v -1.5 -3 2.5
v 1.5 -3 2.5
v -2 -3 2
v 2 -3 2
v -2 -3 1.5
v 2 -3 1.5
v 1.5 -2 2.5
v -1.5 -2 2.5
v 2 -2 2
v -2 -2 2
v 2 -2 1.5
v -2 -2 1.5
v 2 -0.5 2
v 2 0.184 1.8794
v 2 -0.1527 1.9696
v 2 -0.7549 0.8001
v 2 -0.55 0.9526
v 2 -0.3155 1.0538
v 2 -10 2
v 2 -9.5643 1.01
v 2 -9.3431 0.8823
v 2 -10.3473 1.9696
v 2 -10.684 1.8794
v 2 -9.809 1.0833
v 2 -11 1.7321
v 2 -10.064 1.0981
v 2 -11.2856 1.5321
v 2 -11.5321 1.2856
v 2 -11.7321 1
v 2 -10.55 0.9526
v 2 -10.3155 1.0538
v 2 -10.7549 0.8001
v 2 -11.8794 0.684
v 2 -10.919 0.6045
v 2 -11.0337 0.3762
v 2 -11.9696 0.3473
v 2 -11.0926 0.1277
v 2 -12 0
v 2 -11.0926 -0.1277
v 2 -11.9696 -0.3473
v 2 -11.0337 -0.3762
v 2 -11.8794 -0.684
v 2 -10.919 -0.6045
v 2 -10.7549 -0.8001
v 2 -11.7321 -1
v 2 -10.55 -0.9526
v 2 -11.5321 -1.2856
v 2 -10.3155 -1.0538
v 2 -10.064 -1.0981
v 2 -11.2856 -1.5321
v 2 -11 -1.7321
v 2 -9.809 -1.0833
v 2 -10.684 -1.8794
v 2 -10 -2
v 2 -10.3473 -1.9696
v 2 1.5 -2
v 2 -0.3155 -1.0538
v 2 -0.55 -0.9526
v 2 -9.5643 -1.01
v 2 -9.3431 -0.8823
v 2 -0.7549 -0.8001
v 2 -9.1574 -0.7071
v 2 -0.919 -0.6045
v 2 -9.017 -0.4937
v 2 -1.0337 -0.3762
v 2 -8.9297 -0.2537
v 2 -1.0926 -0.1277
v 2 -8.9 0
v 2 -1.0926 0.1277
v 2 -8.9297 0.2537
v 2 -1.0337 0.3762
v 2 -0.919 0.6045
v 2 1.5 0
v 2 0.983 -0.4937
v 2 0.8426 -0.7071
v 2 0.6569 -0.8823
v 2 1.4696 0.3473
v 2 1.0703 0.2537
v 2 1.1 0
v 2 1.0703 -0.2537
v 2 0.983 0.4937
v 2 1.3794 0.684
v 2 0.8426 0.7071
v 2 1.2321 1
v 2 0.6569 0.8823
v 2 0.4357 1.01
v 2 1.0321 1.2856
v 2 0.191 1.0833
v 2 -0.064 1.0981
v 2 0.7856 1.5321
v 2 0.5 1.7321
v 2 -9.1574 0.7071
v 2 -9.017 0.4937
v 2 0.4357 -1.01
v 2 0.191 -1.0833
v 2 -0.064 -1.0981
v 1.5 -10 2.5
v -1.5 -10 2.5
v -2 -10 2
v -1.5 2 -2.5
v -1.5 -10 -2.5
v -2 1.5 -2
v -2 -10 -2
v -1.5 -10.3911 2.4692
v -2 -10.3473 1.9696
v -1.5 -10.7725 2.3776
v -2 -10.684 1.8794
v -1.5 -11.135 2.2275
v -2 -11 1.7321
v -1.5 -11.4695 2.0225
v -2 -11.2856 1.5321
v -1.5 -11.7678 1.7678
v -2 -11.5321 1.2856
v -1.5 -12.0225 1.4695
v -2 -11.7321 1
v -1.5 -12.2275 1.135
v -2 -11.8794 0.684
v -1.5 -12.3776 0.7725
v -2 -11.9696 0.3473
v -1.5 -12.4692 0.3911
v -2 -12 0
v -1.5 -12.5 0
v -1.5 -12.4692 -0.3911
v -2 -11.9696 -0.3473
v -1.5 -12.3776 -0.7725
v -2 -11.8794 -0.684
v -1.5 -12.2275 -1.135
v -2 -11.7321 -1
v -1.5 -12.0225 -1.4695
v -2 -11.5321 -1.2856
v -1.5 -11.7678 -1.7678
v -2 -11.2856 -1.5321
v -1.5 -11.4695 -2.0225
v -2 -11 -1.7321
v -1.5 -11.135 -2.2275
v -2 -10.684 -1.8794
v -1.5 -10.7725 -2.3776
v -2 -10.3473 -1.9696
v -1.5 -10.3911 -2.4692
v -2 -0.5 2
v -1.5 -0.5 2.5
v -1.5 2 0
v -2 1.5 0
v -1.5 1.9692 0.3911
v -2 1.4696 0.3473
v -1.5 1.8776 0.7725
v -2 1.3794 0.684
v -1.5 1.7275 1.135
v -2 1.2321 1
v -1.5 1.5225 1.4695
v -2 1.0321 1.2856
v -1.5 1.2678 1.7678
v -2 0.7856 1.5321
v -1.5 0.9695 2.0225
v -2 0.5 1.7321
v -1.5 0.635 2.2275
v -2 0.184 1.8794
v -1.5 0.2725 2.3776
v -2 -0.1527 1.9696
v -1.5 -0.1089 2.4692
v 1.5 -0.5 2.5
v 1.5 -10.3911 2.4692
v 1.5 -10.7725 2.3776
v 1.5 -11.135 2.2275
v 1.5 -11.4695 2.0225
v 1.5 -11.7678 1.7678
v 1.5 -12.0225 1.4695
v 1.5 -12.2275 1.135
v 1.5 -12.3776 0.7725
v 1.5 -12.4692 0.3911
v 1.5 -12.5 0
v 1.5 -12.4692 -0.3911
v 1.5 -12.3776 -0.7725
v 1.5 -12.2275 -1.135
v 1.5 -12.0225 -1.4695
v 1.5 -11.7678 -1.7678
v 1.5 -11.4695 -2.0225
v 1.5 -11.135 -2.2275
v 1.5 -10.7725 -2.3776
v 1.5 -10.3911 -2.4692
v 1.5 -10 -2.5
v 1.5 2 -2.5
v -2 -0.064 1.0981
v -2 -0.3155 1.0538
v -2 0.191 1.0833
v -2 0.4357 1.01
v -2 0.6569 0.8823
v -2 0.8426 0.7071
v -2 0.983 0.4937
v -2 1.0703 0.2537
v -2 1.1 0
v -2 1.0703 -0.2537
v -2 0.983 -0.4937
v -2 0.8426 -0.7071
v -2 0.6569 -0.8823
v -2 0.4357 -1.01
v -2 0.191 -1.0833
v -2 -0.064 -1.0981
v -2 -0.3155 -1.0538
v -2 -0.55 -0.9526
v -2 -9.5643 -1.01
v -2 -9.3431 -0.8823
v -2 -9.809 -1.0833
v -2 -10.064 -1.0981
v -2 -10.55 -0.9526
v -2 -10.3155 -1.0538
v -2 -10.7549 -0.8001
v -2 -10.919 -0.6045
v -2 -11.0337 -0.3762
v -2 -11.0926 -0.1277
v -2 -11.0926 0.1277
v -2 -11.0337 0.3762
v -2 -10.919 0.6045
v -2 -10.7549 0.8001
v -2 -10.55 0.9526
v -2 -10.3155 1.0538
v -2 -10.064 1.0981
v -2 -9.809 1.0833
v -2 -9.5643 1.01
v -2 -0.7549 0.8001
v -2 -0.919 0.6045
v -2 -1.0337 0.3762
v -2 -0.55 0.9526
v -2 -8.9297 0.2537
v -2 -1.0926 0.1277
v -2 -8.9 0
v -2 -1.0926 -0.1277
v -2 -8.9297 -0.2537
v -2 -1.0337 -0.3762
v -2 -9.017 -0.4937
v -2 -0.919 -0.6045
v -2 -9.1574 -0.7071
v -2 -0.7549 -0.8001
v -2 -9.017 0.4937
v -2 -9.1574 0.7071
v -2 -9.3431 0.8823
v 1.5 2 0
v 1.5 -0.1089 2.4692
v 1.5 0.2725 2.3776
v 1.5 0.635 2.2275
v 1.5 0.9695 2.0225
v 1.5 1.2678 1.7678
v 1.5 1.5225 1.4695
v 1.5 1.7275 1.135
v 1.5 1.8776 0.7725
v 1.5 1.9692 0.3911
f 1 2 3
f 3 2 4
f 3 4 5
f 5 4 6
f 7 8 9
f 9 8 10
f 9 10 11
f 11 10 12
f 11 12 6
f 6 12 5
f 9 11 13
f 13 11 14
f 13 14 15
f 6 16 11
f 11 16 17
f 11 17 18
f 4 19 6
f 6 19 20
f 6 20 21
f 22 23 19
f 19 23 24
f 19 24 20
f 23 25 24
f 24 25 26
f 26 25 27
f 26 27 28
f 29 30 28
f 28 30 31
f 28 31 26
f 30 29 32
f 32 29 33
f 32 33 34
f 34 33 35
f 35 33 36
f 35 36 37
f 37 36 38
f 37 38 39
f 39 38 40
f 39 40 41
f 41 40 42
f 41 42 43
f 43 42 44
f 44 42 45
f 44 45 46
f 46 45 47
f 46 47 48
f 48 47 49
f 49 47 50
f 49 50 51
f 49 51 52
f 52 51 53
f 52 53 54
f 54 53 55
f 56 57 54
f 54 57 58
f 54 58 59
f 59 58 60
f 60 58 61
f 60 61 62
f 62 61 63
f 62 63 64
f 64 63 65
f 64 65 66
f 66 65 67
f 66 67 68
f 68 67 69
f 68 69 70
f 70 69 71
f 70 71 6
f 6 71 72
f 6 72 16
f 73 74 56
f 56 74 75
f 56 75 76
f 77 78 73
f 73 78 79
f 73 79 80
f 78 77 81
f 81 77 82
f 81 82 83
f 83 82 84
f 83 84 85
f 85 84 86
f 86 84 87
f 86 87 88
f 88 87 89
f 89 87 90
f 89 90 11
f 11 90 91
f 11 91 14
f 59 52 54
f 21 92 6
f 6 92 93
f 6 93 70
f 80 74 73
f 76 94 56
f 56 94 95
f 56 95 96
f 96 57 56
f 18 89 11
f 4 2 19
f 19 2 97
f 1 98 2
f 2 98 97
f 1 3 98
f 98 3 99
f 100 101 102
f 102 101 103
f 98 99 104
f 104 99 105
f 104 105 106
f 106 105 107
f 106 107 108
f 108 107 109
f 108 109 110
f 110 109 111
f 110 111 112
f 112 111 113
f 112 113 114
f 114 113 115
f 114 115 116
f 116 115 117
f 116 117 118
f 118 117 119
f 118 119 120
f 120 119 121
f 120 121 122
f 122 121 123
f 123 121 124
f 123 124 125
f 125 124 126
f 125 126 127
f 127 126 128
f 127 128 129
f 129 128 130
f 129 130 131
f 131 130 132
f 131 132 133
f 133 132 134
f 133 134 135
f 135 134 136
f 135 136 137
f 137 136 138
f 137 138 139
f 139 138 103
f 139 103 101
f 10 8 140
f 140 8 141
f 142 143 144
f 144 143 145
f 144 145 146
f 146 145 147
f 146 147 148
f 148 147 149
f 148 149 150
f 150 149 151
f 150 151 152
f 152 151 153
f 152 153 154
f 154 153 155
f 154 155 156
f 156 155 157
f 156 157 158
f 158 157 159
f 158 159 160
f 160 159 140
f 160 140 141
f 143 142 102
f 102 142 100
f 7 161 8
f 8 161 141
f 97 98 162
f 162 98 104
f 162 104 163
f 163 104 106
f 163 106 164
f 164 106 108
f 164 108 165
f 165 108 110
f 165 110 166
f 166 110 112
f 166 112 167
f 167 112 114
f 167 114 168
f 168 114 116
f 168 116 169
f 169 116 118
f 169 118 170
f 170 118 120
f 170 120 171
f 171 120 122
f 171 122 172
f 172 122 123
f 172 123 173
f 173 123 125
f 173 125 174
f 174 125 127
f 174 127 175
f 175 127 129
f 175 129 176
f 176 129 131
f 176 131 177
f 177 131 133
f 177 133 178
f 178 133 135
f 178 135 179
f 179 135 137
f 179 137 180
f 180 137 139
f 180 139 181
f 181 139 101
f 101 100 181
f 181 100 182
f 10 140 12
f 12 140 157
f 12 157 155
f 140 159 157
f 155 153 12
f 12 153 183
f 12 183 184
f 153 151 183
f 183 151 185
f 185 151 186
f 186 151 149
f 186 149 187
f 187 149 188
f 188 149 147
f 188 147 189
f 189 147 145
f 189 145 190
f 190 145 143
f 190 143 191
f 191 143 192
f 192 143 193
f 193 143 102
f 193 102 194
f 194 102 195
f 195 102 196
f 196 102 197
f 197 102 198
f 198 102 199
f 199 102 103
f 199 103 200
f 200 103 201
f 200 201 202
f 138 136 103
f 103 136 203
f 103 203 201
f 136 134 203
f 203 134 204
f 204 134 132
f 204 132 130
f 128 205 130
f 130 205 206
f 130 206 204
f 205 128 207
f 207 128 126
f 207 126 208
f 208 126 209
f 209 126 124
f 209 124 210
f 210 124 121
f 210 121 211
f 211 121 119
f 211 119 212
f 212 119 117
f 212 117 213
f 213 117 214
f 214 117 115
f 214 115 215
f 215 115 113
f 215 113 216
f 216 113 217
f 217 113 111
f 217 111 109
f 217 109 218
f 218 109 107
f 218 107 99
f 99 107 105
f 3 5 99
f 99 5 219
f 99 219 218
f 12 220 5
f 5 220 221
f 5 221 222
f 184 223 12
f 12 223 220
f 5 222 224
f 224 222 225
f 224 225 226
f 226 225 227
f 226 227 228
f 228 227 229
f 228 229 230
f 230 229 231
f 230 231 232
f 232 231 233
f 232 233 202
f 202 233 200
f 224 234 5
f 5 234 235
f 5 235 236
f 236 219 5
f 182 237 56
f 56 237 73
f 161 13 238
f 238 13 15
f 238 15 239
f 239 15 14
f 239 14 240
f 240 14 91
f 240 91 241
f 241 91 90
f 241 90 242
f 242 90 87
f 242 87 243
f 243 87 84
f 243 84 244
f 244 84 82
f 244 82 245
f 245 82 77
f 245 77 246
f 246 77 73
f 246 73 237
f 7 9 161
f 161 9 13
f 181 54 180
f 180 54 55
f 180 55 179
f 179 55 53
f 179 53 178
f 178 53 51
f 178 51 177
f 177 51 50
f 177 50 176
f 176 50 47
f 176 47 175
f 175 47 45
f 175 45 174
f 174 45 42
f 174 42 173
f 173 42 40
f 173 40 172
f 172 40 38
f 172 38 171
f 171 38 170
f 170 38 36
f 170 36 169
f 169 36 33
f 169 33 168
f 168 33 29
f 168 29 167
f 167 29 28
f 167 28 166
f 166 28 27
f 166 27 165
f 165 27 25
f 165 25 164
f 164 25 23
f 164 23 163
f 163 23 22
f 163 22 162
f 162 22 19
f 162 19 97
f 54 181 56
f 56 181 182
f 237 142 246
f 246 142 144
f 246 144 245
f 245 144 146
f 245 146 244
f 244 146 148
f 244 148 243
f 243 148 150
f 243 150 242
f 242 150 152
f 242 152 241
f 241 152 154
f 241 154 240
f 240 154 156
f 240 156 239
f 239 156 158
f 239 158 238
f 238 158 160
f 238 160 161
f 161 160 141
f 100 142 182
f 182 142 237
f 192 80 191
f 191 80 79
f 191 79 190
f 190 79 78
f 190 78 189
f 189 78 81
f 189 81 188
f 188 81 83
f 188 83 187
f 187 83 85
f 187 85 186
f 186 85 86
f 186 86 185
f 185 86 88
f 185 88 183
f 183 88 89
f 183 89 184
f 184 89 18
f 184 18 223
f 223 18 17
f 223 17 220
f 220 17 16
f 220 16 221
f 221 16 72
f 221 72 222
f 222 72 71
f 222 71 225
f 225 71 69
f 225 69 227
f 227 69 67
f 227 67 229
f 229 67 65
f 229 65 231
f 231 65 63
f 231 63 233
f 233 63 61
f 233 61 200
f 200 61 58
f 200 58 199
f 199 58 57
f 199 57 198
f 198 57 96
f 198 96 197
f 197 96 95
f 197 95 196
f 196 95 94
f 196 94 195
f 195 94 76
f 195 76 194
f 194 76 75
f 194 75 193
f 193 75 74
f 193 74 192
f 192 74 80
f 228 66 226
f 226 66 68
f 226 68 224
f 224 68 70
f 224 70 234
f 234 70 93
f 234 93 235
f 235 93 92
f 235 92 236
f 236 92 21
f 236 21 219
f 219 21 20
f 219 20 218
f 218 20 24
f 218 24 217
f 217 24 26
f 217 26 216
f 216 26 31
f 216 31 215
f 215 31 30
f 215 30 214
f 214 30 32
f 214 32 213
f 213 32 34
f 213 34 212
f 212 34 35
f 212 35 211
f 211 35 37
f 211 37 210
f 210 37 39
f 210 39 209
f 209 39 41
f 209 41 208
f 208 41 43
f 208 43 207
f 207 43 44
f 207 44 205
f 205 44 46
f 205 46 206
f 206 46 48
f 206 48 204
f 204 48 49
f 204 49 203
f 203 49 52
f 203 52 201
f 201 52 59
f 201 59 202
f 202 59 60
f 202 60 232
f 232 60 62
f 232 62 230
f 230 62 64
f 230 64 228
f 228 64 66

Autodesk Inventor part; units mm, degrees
ref_plane "YZ Plane" through (0, 0, 0) normal (1, 0, 0) x (0, 1, 0)
ref_plane "XZ Plane" through (0, 0, 0) normal (0, 1, 0) x (-1, 0, 0)
ref_plane "XY Plane" through (0, 0, 0) normal (0, 0, 1) x (1, 0, 0)
sketch "Skizze1" plane through (0, 0, 0) normal (1, 0, 0) x (0, 1, 0)
  line L0 (0, 0) -> (-10, 0) construction
  circle A0 centre (0, 0) radius 1.1
  circle A1 centre (-10, 0) radius 1.1
  arc A2 (-10, 2.5) -> (-10, -2.5) centre (-10, 0) ccw
  line L1 (-10, -2.5) -> (2, -2.5)
  line L2 (-10, 2.5) -> (-0.5, 2.5)
  arc A3 (2, 0) -> (-0.5, 2.5) centre (-0.5, 0) ccw
  line L3 (2, 0) -> (2, -2.5)
  dimension "d0" = 10
  dimension "d1" = 2.2
  dimension "d2" = 2.2
  dimension "d3" = 2.5
  dimension "d8" = 2.5
  dimension "d9" = 2
extrude "Extrusion1" add sketch "Skizze1" along normal mid plane 4
chamfer "Fase1" distance 0.5 angle 45 10 edges at (2, 1.2678, 1.7678) (2, -5.25, 2.5) (2, -12.5, 0) (2, -4, -2.5) (2, 2, -1.25) (-2, 1.2678, 1.7678) (-2, -5.25, 2.5) (-2, -12.5, 0) (-2, -4, -2.5) (-2, 2, -1.25)
sketch "Skizze5" plane through (-1.5, -10, 2.5) normal (0, 0, 1) x (1, 0, 0)
  line L0 (1.5, 14.9) -> (1.5, -5.4) projected
  line L1 (-1.3, 10) -> (4.3, 10) projected
  line L2 (3.5, 8) -> (-0.5, 8)
  line L3 (-0.5, 8) -> (-0.5, 7)
  line L4 (-0.5, 7) -> (3.5, 7)
  line L5 (3.5, 7) -> (3.5, 8)
  line L6 (3.5, 0) -> (3.5, 9.5) projected
  line L7 (-0.5, 9.5) -> (-0.5, 0) projected
  point P0 (1.5, 10)
  dimension "d26" = 1
  dimension "d27" = 2
extrude "Extrusion4" cut sketch "Skizze5" against normal blind 1
pattern_linear "Rechteckige Anordnung1" [suppressed]
equation "\"d2\" = d1"
properties part number "Chipanschlag L2.0"
